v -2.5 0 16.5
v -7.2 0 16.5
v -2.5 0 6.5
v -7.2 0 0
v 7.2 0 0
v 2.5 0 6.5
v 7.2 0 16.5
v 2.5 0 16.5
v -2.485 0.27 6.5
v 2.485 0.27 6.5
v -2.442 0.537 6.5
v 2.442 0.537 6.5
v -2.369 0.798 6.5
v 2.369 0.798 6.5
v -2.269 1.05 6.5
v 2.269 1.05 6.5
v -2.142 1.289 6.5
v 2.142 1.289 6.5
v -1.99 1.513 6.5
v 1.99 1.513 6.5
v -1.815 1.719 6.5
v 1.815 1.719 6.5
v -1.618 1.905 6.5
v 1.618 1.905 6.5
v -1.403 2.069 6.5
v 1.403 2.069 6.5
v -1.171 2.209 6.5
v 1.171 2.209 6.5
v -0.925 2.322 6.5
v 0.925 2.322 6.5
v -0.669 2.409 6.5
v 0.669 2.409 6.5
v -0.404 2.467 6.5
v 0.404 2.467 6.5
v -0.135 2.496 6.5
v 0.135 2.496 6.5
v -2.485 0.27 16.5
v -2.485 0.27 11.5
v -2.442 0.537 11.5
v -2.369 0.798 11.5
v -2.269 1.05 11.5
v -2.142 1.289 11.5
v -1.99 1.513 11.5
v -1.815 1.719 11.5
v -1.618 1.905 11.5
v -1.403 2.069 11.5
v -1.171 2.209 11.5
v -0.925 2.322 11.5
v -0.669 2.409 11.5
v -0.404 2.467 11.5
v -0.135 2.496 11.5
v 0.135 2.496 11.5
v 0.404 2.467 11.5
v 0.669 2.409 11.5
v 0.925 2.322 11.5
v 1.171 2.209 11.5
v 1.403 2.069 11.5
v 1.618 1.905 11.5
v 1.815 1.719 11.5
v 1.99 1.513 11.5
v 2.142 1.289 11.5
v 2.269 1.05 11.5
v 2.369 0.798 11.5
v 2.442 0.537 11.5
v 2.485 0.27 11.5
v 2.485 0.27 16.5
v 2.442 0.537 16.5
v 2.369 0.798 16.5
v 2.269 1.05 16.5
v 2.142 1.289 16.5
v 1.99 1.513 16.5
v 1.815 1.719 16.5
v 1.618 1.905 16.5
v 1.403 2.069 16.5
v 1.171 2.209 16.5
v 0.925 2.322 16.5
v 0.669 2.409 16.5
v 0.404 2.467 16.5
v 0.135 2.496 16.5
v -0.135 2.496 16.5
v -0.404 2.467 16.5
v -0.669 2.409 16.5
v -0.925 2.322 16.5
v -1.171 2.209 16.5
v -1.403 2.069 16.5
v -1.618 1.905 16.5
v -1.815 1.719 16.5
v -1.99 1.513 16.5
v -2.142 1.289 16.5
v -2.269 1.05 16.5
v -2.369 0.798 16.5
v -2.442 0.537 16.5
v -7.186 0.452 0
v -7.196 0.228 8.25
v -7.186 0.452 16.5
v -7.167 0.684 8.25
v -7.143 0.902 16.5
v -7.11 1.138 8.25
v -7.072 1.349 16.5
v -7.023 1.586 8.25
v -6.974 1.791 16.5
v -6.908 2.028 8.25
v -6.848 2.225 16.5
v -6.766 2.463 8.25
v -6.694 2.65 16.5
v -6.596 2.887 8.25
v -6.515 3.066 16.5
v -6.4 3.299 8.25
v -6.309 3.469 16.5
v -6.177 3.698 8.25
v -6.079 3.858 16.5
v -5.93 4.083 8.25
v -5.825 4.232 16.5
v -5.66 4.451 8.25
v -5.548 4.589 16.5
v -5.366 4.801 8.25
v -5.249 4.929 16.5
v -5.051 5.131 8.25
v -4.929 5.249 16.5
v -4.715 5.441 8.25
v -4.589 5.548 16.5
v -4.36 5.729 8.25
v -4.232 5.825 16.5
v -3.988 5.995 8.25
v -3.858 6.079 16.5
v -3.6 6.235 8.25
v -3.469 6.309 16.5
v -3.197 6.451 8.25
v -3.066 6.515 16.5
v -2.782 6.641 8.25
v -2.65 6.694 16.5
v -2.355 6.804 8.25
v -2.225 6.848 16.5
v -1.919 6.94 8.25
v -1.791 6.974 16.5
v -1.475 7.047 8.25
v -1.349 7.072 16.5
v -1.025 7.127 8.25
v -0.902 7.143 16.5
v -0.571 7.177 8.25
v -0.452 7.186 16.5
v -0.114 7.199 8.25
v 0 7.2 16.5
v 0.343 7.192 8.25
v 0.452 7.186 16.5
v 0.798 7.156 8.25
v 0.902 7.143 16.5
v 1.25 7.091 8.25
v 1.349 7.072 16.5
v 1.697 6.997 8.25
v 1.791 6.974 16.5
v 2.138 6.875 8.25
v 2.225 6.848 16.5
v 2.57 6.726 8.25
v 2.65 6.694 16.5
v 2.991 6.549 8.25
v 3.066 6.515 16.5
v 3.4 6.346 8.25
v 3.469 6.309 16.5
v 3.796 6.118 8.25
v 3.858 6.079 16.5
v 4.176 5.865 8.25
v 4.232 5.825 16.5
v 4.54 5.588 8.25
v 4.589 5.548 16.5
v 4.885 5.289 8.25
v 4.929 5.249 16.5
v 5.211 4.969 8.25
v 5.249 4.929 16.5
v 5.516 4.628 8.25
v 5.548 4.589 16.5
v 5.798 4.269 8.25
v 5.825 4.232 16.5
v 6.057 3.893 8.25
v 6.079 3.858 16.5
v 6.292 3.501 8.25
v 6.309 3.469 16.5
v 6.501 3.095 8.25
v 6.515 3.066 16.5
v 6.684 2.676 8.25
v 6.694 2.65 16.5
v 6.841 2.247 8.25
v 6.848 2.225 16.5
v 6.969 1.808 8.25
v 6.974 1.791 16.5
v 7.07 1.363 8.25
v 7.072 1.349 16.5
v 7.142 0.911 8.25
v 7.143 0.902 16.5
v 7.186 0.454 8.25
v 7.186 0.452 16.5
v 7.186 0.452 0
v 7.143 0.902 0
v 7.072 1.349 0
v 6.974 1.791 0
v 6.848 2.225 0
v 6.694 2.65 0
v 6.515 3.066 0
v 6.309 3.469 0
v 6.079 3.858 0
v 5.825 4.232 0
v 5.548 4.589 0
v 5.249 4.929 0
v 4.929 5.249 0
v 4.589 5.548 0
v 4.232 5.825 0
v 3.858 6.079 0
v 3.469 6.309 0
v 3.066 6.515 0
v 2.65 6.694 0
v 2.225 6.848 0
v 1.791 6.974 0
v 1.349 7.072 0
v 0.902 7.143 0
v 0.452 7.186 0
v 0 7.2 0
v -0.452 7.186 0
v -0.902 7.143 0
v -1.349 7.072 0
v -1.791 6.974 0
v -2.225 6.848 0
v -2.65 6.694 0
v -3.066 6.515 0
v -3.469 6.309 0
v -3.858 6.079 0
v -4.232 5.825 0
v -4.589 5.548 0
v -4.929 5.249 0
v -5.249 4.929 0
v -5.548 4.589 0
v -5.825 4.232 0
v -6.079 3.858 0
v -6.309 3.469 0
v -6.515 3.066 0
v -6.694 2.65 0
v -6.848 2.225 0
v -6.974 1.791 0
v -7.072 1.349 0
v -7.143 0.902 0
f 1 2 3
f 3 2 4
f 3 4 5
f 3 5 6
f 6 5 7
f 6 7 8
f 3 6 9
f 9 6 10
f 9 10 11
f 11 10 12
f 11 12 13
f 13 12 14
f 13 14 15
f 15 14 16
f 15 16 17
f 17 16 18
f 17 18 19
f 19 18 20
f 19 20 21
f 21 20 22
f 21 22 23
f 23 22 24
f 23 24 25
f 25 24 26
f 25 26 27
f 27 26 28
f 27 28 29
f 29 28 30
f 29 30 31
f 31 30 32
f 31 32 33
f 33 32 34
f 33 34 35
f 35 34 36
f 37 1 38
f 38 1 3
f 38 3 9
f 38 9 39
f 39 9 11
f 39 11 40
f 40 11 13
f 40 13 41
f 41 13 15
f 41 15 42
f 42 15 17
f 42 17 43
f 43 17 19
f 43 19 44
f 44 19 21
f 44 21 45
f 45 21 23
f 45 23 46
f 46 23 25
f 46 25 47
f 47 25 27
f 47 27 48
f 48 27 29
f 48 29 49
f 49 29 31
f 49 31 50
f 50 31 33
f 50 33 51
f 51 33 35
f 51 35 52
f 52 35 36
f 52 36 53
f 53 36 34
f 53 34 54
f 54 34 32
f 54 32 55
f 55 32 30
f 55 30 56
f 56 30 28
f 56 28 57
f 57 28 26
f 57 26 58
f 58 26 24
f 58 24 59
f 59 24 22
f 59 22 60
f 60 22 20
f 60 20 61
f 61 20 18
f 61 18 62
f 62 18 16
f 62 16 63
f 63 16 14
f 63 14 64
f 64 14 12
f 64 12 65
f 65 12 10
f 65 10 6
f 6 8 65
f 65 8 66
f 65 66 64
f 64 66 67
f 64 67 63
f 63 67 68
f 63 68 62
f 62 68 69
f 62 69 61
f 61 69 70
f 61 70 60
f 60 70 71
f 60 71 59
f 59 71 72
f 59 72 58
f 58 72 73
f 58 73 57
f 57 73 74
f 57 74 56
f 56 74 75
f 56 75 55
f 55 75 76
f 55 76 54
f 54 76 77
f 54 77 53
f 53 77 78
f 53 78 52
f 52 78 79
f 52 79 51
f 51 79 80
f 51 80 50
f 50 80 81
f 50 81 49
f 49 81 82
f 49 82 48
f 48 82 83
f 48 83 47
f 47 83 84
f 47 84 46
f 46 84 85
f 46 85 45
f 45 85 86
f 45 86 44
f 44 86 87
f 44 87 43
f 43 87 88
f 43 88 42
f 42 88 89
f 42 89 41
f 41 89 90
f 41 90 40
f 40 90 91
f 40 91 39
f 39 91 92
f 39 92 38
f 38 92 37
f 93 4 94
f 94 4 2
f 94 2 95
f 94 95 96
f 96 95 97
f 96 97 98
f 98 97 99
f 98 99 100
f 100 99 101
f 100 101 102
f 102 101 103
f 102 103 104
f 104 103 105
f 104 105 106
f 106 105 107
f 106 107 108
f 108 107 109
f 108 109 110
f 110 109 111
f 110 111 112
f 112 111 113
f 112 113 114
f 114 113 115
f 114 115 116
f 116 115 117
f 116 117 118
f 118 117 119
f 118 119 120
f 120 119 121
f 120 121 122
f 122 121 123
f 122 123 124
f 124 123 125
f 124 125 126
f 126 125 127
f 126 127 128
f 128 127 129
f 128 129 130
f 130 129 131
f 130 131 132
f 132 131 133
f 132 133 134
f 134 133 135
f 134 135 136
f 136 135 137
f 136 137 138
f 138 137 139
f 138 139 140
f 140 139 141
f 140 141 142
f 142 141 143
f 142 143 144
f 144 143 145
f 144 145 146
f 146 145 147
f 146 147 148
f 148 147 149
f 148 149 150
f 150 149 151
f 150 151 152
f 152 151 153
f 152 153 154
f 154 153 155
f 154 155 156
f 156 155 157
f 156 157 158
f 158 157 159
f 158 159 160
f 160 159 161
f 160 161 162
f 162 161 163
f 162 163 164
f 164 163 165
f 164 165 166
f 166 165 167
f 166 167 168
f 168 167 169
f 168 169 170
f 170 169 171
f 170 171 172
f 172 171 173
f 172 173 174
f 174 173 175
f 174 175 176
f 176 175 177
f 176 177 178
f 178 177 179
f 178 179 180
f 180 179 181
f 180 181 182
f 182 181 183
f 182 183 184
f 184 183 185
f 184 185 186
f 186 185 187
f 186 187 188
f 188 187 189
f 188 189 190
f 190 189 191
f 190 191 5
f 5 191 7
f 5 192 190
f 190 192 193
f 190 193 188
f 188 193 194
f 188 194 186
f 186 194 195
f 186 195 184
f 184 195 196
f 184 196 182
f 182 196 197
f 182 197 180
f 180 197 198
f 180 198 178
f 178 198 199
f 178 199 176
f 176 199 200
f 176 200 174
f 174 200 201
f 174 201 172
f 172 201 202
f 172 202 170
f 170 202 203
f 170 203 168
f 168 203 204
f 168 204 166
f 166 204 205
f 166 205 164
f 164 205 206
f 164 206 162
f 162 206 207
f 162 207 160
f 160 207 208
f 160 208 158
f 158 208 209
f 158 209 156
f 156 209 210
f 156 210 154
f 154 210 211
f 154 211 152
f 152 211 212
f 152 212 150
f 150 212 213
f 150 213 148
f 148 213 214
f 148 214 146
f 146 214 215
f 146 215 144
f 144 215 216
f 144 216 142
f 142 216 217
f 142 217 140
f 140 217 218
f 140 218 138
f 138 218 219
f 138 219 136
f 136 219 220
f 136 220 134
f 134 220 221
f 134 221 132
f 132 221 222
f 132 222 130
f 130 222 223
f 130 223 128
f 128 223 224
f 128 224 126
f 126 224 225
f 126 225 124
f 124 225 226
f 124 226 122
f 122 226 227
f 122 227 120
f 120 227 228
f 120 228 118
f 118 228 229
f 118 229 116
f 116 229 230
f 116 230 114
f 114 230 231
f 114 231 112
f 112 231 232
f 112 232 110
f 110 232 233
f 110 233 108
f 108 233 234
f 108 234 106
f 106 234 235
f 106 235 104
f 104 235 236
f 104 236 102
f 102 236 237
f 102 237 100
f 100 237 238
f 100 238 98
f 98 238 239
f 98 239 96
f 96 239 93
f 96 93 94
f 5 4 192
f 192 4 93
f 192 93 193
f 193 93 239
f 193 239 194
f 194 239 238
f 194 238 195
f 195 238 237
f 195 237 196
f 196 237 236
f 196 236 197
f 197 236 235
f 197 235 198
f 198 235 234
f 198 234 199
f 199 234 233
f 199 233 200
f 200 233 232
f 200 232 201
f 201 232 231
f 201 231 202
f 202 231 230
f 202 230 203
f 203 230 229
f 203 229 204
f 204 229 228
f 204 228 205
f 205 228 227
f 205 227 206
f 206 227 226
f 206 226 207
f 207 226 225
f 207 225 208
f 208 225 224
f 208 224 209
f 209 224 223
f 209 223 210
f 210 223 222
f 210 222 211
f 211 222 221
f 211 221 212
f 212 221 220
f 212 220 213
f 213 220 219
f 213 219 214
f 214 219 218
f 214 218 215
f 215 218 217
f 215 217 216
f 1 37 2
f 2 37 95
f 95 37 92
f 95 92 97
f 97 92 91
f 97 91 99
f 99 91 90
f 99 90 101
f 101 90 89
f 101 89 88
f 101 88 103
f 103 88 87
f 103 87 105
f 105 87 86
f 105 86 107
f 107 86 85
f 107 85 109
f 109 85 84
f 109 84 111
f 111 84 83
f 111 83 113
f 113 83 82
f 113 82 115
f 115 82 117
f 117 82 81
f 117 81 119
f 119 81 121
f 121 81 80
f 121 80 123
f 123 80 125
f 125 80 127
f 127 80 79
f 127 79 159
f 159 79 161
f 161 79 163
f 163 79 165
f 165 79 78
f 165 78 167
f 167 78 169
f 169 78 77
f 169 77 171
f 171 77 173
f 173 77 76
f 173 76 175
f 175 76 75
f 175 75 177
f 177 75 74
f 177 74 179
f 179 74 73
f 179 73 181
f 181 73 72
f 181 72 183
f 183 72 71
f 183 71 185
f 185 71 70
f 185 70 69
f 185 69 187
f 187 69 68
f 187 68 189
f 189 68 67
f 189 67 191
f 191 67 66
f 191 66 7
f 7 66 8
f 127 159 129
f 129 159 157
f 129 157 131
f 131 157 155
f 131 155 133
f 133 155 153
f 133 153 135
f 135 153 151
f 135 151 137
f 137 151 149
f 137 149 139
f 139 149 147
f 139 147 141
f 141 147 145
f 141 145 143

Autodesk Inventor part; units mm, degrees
ref_plane "YZ Plane" through (0, 0, 0) normal (1, 0, 0) x (0, 1, 0)
ref_plane "XZ Plane" through (0, 0, 0) normal (0, 1, 0) x (-1, 0, 0)
ref_plane "XY Plane" through (0, 0, 0) normal (0, 0, 1) x (1, 0, 0)
sketch "Sketch1" plane through (0, 0, 0) normal (0, 0, 1) x (1, 0, 0)
  circle A0 centre (0, 0) radius 7.2
  dimension "d0" = 14.4
extrude "Extrusion1" add sketch "Sketch1" along normal blind 16.5
sketch "Sketch2" plane through (0, 0, 16.5) normal (0, 0, 1) x (1, 0, 0)
  circle A0 centre (0, 0) radius 2.5
  dimension "d3" = 5
extrude "Extrusion2" cut sketch "Sketch2" against normal blind 10
sketch "Sketch5" plane through (0, 0, 0) normal (0, 0, -1) x (-1, 0, 0)
  line L0 (17.8427, 0) -> (-13.8887, 0) projected
  line L1 (-9.3556, 0) -> (13.3097, 0)
  line L2 (13.3097, 0) -> (13.3097, -11.7916)
  line L3 (13.3097, -11.7916) -> (-9.3556, -11.7916)
  line L4 (-9.3556, -11.7916) -> (-9.3556, 0)
  point P0 (0, 0)
extrude "Extrusion4" cut sketch "Sketch5" against normal up to surface (16.5 mm away)
properties part number "HoleFill4"
